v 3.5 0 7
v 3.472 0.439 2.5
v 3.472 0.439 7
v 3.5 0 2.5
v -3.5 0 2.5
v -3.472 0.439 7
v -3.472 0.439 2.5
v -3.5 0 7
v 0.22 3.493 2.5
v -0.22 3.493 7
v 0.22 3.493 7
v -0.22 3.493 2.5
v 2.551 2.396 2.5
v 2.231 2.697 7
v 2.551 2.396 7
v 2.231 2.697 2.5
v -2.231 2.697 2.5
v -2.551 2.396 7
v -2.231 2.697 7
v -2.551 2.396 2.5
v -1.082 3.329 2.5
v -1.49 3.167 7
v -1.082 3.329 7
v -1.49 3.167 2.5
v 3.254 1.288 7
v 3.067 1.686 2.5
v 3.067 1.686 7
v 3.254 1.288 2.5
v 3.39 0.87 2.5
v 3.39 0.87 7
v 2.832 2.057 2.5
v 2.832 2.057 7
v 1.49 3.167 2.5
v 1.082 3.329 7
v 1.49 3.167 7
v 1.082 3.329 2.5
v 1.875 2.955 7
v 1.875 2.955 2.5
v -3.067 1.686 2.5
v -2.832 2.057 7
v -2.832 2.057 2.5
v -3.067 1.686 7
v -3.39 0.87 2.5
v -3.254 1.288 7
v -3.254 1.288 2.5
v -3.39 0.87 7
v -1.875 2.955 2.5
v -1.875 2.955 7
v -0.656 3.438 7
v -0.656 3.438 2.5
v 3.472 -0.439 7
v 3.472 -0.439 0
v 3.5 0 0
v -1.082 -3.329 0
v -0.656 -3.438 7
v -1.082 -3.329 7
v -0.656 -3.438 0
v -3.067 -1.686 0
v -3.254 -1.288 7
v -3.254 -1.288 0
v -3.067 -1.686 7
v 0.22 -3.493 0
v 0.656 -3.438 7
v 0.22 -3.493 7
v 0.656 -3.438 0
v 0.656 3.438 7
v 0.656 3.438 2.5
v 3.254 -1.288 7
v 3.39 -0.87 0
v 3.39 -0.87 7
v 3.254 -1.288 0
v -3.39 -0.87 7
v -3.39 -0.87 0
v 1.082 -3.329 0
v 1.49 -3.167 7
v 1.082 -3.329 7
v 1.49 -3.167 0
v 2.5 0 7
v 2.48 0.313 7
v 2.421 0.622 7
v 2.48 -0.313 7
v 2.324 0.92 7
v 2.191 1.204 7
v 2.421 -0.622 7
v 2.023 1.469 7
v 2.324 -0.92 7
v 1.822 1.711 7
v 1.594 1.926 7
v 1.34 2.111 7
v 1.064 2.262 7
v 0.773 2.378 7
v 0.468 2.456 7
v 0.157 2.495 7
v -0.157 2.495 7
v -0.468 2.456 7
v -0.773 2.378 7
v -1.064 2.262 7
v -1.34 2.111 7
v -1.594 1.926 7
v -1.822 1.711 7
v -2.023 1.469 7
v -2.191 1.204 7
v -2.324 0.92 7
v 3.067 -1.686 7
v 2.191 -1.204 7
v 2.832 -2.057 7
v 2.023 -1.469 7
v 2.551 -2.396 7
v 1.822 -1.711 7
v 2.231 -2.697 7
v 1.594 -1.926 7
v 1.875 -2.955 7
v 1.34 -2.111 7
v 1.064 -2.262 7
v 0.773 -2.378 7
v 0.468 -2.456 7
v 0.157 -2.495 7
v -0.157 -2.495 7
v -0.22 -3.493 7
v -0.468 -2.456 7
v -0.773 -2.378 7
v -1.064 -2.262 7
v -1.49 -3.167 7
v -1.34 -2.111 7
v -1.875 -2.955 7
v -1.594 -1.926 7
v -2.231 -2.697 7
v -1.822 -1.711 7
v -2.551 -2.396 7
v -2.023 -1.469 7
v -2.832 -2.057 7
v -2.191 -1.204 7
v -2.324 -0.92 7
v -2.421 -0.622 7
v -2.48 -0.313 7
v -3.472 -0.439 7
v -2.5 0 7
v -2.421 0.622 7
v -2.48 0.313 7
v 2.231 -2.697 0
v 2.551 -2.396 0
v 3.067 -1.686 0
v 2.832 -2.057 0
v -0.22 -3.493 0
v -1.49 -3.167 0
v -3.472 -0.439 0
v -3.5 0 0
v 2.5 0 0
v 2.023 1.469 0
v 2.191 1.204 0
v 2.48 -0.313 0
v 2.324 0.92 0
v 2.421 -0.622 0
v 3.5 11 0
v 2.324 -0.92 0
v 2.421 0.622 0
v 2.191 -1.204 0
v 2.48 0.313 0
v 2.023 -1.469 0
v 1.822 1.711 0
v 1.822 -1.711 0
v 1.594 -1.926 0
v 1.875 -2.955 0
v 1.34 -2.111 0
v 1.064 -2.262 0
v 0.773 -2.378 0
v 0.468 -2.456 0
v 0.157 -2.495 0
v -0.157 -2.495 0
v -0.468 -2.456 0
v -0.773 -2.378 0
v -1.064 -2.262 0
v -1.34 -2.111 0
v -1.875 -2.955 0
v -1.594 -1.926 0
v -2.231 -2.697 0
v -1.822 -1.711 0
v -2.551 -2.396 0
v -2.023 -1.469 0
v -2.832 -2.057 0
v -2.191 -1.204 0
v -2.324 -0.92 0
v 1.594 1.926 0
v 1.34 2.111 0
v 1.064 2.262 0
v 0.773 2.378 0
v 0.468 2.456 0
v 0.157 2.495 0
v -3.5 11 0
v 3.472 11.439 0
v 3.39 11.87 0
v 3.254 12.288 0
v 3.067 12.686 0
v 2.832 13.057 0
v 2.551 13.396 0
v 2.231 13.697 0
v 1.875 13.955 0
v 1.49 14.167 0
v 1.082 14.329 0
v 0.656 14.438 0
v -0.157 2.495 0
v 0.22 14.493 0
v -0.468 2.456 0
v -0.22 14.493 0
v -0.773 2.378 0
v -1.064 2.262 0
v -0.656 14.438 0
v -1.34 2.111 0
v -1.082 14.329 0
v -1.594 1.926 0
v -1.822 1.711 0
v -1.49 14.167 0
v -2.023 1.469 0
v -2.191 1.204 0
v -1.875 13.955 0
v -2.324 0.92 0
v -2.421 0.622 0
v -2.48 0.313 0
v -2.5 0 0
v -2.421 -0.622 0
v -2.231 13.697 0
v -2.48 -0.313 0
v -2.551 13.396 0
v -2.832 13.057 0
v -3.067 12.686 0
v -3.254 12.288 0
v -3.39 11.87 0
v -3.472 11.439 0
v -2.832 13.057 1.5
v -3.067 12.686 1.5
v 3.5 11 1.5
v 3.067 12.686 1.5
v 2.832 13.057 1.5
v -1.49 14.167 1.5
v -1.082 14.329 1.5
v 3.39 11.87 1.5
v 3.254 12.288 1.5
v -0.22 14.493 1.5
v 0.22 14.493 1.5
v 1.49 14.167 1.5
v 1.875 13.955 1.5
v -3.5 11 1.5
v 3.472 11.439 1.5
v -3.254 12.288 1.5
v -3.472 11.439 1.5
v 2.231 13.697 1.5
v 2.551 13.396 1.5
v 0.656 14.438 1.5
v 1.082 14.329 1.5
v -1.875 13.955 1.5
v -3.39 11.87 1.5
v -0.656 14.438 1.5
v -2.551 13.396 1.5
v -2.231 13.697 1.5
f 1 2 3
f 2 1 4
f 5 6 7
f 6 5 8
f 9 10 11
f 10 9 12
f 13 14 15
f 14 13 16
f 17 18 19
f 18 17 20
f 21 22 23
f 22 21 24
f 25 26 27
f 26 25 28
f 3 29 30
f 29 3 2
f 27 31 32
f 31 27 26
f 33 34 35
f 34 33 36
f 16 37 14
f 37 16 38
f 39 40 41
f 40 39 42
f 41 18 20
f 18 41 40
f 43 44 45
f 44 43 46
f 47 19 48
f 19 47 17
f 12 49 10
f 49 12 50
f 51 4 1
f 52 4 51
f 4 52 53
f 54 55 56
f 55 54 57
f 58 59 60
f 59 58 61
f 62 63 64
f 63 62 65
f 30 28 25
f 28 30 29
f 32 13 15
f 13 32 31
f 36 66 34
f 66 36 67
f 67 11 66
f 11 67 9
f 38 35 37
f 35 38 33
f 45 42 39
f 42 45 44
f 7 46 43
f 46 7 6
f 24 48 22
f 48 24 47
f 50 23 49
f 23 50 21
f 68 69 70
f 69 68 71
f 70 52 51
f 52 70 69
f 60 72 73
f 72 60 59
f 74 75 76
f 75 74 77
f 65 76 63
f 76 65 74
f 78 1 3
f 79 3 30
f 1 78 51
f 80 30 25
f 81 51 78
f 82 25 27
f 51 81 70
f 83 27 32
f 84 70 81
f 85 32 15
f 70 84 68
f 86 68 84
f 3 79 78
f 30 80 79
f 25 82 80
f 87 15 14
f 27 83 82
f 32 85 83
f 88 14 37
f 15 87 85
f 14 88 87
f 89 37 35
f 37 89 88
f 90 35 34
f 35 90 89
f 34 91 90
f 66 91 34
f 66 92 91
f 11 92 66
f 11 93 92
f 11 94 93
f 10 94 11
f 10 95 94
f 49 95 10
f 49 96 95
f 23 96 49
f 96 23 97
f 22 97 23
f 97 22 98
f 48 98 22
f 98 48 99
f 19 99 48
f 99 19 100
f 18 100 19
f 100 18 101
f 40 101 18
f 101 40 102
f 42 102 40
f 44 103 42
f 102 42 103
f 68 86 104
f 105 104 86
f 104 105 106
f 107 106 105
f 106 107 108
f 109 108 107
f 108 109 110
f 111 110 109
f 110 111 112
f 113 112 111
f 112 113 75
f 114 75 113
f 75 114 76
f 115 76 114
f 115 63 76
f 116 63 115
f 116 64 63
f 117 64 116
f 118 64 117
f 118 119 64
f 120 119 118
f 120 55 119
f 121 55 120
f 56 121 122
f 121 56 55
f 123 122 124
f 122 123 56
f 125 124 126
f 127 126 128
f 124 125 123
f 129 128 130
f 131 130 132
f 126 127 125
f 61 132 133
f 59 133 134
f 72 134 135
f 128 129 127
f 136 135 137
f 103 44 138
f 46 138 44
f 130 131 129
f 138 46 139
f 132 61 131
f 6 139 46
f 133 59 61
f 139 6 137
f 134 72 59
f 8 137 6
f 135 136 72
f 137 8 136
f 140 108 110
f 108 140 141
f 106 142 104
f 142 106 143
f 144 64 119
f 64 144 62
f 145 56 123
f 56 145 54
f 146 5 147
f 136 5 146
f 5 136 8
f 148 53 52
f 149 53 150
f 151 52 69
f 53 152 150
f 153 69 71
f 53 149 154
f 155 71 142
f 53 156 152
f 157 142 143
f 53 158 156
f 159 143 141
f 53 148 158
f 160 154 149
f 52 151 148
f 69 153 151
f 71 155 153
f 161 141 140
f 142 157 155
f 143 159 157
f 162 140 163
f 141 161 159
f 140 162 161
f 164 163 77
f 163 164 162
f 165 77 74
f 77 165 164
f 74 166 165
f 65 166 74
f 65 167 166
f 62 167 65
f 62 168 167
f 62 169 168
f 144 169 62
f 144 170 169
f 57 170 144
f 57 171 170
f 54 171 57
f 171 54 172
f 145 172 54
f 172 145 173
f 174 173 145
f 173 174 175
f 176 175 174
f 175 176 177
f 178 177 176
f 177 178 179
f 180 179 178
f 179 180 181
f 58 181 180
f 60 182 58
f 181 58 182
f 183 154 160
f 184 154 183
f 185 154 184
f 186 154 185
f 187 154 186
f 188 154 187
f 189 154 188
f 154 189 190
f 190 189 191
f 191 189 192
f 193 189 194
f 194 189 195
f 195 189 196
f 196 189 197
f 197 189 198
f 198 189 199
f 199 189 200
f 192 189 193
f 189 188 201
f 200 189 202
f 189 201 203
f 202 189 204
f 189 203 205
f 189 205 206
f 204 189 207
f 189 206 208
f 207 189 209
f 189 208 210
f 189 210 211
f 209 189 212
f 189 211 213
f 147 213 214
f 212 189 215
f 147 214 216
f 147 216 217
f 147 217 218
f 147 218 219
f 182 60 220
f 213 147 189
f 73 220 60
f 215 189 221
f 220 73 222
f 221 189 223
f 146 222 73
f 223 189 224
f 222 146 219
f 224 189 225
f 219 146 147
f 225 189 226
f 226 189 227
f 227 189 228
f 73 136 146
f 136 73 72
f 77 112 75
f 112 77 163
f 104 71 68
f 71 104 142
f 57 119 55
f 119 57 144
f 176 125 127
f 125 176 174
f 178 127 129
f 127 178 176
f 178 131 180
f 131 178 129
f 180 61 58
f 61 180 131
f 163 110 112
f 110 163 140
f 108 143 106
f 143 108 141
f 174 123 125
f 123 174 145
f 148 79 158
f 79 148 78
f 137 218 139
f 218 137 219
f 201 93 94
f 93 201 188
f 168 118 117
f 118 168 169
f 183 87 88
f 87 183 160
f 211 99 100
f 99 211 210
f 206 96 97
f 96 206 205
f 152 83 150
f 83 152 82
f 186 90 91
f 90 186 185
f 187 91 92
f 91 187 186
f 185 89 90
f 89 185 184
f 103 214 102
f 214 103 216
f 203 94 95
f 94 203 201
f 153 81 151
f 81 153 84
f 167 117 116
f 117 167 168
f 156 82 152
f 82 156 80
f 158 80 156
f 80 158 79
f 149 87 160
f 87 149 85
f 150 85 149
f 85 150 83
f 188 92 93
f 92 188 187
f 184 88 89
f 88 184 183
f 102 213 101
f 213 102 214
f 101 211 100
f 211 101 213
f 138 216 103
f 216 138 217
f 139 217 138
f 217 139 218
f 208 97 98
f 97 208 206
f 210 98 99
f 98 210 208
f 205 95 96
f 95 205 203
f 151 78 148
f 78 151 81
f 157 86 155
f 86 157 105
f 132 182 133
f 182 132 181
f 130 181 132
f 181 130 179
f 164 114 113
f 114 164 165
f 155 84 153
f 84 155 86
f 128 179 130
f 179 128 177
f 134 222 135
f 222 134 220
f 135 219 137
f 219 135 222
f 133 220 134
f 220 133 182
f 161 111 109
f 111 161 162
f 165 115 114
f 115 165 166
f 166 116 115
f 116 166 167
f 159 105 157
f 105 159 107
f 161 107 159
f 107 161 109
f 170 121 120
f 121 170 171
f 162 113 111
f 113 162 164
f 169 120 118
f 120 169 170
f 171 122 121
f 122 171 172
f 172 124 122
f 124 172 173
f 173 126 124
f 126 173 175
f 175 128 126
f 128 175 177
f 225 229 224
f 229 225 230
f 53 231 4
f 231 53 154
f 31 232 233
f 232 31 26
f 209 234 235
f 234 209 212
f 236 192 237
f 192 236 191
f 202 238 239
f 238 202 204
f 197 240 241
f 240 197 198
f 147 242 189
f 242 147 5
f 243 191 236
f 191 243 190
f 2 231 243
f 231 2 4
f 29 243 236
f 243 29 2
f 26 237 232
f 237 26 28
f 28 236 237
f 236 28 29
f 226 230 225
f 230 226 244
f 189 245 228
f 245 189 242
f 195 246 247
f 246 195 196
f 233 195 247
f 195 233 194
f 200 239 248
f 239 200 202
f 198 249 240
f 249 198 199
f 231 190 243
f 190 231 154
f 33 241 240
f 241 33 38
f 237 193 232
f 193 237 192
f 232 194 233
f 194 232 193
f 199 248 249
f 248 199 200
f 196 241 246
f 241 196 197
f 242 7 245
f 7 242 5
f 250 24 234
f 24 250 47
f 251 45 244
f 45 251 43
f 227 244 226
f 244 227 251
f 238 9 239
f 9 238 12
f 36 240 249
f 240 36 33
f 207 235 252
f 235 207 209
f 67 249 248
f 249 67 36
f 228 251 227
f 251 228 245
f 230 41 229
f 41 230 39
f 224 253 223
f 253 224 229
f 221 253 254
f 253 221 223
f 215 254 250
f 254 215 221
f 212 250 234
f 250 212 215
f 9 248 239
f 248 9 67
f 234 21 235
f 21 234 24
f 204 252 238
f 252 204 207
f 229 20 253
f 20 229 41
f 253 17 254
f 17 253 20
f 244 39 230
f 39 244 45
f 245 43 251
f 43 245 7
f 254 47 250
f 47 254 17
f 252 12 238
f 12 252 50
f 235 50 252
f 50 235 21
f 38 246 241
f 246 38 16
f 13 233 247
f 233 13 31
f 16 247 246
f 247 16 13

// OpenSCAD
$fn=50;

difference() {
    cylinder(r=3.5,h=7);
    cylinder(r=2.5,h=7);
}
difference() {
    hull() {
        cylinder(r=3.5,h=2.5);
        translate([0,11,0])cylinder(r=3.5,h=1.5);
    }
    cylinder(r=2.5,h=2.5);
}
